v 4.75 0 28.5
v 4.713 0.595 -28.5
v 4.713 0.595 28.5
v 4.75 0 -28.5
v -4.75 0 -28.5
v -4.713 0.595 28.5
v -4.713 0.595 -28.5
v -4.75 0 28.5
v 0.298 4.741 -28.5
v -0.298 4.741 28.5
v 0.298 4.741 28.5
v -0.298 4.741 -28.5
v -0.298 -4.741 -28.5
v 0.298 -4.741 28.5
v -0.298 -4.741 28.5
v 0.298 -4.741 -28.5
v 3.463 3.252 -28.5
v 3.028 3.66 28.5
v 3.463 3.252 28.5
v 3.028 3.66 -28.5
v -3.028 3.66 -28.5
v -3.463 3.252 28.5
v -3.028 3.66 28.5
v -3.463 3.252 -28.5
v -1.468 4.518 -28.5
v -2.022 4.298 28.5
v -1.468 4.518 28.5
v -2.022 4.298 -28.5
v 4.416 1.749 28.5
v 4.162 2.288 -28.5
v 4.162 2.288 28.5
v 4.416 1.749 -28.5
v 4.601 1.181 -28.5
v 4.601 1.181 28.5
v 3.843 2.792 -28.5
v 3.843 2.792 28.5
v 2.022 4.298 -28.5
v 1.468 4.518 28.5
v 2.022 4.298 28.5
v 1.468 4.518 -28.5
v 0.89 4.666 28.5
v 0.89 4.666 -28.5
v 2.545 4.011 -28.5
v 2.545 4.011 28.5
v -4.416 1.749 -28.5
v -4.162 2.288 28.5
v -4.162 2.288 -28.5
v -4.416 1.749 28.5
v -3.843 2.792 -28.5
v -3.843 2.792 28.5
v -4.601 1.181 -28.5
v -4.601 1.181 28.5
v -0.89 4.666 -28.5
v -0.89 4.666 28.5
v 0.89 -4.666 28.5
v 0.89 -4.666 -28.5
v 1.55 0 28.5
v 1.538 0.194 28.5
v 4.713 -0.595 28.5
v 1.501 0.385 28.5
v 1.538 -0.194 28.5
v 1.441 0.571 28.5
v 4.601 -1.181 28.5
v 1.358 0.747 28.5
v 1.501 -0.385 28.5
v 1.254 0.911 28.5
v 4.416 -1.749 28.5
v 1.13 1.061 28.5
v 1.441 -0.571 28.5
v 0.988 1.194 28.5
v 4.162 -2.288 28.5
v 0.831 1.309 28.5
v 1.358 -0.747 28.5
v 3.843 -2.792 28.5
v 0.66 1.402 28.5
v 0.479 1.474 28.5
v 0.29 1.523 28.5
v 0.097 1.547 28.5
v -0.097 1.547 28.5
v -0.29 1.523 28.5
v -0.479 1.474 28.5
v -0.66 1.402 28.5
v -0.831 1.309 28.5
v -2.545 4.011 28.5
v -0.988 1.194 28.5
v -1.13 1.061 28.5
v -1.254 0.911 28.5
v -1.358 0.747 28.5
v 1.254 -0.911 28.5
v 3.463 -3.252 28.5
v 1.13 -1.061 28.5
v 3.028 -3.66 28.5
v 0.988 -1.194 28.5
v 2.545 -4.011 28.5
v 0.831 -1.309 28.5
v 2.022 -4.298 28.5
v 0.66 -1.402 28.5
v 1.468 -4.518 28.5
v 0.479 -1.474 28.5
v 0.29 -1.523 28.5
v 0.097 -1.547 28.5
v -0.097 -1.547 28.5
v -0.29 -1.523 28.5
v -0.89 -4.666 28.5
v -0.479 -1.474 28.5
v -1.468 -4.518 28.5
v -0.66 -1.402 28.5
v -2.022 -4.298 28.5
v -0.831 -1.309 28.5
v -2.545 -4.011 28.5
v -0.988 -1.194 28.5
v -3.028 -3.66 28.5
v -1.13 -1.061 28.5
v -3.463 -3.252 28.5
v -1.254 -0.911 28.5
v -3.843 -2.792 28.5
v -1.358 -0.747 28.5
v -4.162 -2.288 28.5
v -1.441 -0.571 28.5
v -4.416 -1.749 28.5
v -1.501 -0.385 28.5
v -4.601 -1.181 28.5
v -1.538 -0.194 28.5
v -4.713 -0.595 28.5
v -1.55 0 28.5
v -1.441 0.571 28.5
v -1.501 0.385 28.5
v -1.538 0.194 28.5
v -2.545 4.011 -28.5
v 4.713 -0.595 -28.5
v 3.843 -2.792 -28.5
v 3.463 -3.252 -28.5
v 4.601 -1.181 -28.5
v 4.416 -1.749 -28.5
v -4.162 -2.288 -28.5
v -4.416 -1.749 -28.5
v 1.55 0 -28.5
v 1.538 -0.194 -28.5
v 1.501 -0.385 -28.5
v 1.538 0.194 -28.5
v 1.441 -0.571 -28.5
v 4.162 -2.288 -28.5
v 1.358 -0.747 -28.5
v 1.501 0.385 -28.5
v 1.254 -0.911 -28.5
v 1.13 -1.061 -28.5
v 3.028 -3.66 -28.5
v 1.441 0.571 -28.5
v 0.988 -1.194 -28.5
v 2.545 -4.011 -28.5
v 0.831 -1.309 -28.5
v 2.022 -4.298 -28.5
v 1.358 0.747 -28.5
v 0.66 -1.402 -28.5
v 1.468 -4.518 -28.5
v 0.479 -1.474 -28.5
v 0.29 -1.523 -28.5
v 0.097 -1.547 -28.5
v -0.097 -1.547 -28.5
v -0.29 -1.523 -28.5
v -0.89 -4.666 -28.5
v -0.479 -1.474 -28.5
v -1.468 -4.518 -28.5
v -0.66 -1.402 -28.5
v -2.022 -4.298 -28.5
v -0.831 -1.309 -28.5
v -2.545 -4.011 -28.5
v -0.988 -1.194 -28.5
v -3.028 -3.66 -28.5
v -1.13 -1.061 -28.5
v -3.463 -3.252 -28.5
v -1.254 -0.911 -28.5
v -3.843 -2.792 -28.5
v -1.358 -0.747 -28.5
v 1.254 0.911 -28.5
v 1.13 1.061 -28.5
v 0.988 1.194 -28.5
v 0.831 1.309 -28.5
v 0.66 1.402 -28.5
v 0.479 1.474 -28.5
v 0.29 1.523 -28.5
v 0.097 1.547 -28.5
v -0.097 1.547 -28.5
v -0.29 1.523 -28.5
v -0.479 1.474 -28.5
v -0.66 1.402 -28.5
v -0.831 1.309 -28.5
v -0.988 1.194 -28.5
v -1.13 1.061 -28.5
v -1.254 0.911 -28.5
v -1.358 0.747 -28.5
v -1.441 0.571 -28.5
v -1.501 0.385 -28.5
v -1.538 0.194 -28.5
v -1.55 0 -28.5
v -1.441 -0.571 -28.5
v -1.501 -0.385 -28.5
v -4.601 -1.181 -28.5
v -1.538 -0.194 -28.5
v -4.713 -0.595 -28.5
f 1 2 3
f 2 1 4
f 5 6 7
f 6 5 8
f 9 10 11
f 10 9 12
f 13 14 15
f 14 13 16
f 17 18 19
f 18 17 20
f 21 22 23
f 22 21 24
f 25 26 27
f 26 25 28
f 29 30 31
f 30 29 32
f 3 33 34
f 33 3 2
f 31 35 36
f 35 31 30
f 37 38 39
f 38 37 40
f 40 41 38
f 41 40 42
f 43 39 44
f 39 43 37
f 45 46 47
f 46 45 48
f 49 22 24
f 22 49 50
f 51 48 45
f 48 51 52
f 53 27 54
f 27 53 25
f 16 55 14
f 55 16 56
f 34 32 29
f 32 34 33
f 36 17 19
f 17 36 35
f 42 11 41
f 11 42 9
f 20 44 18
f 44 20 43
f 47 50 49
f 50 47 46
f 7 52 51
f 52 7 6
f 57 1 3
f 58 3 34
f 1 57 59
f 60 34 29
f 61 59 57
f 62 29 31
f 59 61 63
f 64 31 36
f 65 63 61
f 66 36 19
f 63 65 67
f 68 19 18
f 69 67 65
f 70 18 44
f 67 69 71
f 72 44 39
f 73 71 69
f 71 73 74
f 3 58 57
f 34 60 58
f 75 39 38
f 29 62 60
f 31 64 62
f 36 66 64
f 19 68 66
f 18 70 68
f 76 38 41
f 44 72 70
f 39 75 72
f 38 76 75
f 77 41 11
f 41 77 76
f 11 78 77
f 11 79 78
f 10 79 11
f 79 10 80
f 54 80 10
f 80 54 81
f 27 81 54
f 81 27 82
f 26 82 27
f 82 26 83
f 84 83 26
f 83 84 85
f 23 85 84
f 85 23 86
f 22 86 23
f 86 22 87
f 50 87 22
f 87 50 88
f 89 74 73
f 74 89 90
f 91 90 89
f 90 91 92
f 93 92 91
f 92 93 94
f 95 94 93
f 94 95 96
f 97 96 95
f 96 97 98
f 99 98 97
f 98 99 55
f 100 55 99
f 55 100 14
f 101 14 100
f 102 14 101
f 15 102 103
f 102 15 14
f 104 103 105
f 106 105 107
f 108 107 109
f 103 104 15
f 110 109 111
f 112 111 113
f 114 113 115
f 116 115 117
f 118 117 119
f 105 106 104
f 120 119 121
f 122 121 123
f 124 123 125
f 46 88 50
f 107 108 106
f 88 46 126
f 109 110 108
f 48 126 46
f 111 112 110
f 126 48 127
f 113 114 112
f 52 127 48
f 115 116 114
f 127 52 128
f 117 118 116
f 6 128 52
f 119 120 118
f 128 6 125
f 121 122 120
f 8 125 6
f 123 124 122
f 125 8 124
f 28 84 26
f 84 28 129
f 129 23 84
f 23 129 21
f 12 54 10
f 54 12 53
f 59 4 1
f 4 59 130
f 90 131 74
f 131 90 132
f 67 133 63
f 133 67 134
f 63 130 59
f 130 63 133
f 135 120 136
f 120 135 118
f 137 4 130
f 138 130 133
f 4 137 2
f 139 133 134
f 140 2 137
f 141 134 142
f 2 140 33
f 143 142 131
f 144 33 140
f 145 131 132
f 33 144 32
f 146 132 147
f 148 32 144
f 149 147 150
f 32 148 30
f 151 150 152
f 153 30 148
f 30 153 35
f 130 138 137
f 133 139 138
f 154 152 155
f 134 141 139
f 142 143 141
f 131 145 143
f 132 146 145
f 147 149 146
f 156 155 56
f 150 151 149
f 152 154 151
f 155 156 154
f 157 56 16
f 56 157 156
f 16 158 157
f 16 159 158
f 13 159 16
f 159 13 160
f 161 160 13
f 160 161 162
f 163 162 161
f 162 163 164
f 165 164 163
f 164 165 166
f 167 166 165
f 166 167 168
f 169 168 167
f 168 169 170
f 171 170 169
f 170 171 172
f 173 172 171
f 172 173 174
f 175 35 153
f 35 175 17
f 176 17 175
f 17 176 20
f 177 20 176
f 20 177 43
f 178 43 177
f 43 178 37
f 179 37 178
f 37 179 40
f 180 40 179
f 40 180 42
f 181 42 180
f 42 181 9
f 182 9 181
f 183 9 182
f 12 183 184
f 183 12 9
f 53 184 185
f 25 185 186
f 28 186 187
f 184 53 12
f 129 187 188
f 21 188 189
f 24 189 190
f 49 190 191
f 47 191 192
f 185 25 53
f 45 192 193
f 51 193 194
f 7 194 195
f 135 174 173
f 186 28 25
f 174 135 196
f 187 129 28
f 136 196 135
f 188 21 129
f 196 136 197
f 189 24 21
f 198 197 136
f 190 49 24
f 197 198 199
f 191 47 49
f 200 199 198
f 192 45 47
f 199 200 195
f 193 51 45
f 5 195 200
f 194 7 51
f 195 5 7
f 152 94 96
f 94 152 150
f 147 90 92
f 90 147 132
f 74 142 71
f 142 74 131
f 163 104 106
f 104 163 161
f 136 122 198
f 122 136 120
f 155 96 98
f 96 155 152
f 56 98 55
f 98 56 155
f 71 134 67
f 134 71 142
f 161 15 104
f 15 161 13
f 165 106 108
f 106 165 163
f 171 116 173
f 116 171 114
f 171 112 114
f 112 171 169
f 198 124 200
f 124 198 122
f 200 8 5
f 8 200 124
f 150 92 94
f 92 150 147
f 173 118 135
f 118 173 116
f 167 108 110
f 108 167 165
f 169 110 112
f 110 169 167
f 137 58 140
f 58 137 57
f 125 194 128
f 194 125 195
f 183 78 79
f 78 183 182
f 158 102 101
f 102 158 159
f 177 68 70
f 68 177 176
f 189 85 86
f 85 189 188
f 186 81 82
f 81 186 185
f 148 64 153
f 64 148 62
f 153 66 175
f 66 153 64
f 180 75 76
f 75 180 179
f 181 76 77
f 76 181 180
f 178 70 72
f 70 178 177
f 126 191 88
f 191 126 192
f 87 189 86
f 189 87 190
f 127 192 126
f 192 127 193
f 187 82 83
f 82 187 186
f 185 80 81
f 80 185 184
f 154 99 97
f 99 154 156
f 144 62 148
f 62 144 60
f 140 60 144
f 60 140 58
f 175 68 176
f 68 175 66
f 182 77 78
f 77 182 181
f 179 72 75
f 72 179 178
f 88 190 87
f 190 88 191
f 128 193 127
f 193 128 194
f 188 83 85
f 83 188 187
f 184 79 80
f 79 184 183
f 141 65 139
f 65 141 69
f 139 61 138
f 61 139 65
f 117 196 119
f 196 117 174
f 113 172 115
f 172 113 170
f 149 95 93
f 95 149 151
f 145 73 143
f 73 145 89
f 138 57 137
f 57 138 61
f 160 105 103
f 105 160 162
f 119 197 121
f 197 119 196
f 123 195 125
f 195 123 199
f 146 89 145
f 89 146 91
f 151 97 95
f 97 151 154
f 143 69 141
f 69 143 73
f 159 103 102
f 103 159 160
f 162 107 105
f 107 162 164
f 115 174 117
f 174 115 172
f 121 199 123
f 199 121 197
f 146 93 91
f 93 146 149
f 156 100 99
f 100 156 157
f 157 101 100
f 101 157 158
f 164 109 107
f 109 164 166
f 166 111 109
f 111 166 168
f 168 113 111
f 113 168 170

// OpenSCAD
$fn = 50;


difference() {
	union() {
		translate(v = [0, 0, -28.5000000000]) {
			cylinder(h = 57, r = 4.7500000000);
		}
	}
	union() {
		translate(v = [0, 0, -100.0000000000]) {
			cylinder(h = 200, r = 1.5500000000);
		}
	}
}
